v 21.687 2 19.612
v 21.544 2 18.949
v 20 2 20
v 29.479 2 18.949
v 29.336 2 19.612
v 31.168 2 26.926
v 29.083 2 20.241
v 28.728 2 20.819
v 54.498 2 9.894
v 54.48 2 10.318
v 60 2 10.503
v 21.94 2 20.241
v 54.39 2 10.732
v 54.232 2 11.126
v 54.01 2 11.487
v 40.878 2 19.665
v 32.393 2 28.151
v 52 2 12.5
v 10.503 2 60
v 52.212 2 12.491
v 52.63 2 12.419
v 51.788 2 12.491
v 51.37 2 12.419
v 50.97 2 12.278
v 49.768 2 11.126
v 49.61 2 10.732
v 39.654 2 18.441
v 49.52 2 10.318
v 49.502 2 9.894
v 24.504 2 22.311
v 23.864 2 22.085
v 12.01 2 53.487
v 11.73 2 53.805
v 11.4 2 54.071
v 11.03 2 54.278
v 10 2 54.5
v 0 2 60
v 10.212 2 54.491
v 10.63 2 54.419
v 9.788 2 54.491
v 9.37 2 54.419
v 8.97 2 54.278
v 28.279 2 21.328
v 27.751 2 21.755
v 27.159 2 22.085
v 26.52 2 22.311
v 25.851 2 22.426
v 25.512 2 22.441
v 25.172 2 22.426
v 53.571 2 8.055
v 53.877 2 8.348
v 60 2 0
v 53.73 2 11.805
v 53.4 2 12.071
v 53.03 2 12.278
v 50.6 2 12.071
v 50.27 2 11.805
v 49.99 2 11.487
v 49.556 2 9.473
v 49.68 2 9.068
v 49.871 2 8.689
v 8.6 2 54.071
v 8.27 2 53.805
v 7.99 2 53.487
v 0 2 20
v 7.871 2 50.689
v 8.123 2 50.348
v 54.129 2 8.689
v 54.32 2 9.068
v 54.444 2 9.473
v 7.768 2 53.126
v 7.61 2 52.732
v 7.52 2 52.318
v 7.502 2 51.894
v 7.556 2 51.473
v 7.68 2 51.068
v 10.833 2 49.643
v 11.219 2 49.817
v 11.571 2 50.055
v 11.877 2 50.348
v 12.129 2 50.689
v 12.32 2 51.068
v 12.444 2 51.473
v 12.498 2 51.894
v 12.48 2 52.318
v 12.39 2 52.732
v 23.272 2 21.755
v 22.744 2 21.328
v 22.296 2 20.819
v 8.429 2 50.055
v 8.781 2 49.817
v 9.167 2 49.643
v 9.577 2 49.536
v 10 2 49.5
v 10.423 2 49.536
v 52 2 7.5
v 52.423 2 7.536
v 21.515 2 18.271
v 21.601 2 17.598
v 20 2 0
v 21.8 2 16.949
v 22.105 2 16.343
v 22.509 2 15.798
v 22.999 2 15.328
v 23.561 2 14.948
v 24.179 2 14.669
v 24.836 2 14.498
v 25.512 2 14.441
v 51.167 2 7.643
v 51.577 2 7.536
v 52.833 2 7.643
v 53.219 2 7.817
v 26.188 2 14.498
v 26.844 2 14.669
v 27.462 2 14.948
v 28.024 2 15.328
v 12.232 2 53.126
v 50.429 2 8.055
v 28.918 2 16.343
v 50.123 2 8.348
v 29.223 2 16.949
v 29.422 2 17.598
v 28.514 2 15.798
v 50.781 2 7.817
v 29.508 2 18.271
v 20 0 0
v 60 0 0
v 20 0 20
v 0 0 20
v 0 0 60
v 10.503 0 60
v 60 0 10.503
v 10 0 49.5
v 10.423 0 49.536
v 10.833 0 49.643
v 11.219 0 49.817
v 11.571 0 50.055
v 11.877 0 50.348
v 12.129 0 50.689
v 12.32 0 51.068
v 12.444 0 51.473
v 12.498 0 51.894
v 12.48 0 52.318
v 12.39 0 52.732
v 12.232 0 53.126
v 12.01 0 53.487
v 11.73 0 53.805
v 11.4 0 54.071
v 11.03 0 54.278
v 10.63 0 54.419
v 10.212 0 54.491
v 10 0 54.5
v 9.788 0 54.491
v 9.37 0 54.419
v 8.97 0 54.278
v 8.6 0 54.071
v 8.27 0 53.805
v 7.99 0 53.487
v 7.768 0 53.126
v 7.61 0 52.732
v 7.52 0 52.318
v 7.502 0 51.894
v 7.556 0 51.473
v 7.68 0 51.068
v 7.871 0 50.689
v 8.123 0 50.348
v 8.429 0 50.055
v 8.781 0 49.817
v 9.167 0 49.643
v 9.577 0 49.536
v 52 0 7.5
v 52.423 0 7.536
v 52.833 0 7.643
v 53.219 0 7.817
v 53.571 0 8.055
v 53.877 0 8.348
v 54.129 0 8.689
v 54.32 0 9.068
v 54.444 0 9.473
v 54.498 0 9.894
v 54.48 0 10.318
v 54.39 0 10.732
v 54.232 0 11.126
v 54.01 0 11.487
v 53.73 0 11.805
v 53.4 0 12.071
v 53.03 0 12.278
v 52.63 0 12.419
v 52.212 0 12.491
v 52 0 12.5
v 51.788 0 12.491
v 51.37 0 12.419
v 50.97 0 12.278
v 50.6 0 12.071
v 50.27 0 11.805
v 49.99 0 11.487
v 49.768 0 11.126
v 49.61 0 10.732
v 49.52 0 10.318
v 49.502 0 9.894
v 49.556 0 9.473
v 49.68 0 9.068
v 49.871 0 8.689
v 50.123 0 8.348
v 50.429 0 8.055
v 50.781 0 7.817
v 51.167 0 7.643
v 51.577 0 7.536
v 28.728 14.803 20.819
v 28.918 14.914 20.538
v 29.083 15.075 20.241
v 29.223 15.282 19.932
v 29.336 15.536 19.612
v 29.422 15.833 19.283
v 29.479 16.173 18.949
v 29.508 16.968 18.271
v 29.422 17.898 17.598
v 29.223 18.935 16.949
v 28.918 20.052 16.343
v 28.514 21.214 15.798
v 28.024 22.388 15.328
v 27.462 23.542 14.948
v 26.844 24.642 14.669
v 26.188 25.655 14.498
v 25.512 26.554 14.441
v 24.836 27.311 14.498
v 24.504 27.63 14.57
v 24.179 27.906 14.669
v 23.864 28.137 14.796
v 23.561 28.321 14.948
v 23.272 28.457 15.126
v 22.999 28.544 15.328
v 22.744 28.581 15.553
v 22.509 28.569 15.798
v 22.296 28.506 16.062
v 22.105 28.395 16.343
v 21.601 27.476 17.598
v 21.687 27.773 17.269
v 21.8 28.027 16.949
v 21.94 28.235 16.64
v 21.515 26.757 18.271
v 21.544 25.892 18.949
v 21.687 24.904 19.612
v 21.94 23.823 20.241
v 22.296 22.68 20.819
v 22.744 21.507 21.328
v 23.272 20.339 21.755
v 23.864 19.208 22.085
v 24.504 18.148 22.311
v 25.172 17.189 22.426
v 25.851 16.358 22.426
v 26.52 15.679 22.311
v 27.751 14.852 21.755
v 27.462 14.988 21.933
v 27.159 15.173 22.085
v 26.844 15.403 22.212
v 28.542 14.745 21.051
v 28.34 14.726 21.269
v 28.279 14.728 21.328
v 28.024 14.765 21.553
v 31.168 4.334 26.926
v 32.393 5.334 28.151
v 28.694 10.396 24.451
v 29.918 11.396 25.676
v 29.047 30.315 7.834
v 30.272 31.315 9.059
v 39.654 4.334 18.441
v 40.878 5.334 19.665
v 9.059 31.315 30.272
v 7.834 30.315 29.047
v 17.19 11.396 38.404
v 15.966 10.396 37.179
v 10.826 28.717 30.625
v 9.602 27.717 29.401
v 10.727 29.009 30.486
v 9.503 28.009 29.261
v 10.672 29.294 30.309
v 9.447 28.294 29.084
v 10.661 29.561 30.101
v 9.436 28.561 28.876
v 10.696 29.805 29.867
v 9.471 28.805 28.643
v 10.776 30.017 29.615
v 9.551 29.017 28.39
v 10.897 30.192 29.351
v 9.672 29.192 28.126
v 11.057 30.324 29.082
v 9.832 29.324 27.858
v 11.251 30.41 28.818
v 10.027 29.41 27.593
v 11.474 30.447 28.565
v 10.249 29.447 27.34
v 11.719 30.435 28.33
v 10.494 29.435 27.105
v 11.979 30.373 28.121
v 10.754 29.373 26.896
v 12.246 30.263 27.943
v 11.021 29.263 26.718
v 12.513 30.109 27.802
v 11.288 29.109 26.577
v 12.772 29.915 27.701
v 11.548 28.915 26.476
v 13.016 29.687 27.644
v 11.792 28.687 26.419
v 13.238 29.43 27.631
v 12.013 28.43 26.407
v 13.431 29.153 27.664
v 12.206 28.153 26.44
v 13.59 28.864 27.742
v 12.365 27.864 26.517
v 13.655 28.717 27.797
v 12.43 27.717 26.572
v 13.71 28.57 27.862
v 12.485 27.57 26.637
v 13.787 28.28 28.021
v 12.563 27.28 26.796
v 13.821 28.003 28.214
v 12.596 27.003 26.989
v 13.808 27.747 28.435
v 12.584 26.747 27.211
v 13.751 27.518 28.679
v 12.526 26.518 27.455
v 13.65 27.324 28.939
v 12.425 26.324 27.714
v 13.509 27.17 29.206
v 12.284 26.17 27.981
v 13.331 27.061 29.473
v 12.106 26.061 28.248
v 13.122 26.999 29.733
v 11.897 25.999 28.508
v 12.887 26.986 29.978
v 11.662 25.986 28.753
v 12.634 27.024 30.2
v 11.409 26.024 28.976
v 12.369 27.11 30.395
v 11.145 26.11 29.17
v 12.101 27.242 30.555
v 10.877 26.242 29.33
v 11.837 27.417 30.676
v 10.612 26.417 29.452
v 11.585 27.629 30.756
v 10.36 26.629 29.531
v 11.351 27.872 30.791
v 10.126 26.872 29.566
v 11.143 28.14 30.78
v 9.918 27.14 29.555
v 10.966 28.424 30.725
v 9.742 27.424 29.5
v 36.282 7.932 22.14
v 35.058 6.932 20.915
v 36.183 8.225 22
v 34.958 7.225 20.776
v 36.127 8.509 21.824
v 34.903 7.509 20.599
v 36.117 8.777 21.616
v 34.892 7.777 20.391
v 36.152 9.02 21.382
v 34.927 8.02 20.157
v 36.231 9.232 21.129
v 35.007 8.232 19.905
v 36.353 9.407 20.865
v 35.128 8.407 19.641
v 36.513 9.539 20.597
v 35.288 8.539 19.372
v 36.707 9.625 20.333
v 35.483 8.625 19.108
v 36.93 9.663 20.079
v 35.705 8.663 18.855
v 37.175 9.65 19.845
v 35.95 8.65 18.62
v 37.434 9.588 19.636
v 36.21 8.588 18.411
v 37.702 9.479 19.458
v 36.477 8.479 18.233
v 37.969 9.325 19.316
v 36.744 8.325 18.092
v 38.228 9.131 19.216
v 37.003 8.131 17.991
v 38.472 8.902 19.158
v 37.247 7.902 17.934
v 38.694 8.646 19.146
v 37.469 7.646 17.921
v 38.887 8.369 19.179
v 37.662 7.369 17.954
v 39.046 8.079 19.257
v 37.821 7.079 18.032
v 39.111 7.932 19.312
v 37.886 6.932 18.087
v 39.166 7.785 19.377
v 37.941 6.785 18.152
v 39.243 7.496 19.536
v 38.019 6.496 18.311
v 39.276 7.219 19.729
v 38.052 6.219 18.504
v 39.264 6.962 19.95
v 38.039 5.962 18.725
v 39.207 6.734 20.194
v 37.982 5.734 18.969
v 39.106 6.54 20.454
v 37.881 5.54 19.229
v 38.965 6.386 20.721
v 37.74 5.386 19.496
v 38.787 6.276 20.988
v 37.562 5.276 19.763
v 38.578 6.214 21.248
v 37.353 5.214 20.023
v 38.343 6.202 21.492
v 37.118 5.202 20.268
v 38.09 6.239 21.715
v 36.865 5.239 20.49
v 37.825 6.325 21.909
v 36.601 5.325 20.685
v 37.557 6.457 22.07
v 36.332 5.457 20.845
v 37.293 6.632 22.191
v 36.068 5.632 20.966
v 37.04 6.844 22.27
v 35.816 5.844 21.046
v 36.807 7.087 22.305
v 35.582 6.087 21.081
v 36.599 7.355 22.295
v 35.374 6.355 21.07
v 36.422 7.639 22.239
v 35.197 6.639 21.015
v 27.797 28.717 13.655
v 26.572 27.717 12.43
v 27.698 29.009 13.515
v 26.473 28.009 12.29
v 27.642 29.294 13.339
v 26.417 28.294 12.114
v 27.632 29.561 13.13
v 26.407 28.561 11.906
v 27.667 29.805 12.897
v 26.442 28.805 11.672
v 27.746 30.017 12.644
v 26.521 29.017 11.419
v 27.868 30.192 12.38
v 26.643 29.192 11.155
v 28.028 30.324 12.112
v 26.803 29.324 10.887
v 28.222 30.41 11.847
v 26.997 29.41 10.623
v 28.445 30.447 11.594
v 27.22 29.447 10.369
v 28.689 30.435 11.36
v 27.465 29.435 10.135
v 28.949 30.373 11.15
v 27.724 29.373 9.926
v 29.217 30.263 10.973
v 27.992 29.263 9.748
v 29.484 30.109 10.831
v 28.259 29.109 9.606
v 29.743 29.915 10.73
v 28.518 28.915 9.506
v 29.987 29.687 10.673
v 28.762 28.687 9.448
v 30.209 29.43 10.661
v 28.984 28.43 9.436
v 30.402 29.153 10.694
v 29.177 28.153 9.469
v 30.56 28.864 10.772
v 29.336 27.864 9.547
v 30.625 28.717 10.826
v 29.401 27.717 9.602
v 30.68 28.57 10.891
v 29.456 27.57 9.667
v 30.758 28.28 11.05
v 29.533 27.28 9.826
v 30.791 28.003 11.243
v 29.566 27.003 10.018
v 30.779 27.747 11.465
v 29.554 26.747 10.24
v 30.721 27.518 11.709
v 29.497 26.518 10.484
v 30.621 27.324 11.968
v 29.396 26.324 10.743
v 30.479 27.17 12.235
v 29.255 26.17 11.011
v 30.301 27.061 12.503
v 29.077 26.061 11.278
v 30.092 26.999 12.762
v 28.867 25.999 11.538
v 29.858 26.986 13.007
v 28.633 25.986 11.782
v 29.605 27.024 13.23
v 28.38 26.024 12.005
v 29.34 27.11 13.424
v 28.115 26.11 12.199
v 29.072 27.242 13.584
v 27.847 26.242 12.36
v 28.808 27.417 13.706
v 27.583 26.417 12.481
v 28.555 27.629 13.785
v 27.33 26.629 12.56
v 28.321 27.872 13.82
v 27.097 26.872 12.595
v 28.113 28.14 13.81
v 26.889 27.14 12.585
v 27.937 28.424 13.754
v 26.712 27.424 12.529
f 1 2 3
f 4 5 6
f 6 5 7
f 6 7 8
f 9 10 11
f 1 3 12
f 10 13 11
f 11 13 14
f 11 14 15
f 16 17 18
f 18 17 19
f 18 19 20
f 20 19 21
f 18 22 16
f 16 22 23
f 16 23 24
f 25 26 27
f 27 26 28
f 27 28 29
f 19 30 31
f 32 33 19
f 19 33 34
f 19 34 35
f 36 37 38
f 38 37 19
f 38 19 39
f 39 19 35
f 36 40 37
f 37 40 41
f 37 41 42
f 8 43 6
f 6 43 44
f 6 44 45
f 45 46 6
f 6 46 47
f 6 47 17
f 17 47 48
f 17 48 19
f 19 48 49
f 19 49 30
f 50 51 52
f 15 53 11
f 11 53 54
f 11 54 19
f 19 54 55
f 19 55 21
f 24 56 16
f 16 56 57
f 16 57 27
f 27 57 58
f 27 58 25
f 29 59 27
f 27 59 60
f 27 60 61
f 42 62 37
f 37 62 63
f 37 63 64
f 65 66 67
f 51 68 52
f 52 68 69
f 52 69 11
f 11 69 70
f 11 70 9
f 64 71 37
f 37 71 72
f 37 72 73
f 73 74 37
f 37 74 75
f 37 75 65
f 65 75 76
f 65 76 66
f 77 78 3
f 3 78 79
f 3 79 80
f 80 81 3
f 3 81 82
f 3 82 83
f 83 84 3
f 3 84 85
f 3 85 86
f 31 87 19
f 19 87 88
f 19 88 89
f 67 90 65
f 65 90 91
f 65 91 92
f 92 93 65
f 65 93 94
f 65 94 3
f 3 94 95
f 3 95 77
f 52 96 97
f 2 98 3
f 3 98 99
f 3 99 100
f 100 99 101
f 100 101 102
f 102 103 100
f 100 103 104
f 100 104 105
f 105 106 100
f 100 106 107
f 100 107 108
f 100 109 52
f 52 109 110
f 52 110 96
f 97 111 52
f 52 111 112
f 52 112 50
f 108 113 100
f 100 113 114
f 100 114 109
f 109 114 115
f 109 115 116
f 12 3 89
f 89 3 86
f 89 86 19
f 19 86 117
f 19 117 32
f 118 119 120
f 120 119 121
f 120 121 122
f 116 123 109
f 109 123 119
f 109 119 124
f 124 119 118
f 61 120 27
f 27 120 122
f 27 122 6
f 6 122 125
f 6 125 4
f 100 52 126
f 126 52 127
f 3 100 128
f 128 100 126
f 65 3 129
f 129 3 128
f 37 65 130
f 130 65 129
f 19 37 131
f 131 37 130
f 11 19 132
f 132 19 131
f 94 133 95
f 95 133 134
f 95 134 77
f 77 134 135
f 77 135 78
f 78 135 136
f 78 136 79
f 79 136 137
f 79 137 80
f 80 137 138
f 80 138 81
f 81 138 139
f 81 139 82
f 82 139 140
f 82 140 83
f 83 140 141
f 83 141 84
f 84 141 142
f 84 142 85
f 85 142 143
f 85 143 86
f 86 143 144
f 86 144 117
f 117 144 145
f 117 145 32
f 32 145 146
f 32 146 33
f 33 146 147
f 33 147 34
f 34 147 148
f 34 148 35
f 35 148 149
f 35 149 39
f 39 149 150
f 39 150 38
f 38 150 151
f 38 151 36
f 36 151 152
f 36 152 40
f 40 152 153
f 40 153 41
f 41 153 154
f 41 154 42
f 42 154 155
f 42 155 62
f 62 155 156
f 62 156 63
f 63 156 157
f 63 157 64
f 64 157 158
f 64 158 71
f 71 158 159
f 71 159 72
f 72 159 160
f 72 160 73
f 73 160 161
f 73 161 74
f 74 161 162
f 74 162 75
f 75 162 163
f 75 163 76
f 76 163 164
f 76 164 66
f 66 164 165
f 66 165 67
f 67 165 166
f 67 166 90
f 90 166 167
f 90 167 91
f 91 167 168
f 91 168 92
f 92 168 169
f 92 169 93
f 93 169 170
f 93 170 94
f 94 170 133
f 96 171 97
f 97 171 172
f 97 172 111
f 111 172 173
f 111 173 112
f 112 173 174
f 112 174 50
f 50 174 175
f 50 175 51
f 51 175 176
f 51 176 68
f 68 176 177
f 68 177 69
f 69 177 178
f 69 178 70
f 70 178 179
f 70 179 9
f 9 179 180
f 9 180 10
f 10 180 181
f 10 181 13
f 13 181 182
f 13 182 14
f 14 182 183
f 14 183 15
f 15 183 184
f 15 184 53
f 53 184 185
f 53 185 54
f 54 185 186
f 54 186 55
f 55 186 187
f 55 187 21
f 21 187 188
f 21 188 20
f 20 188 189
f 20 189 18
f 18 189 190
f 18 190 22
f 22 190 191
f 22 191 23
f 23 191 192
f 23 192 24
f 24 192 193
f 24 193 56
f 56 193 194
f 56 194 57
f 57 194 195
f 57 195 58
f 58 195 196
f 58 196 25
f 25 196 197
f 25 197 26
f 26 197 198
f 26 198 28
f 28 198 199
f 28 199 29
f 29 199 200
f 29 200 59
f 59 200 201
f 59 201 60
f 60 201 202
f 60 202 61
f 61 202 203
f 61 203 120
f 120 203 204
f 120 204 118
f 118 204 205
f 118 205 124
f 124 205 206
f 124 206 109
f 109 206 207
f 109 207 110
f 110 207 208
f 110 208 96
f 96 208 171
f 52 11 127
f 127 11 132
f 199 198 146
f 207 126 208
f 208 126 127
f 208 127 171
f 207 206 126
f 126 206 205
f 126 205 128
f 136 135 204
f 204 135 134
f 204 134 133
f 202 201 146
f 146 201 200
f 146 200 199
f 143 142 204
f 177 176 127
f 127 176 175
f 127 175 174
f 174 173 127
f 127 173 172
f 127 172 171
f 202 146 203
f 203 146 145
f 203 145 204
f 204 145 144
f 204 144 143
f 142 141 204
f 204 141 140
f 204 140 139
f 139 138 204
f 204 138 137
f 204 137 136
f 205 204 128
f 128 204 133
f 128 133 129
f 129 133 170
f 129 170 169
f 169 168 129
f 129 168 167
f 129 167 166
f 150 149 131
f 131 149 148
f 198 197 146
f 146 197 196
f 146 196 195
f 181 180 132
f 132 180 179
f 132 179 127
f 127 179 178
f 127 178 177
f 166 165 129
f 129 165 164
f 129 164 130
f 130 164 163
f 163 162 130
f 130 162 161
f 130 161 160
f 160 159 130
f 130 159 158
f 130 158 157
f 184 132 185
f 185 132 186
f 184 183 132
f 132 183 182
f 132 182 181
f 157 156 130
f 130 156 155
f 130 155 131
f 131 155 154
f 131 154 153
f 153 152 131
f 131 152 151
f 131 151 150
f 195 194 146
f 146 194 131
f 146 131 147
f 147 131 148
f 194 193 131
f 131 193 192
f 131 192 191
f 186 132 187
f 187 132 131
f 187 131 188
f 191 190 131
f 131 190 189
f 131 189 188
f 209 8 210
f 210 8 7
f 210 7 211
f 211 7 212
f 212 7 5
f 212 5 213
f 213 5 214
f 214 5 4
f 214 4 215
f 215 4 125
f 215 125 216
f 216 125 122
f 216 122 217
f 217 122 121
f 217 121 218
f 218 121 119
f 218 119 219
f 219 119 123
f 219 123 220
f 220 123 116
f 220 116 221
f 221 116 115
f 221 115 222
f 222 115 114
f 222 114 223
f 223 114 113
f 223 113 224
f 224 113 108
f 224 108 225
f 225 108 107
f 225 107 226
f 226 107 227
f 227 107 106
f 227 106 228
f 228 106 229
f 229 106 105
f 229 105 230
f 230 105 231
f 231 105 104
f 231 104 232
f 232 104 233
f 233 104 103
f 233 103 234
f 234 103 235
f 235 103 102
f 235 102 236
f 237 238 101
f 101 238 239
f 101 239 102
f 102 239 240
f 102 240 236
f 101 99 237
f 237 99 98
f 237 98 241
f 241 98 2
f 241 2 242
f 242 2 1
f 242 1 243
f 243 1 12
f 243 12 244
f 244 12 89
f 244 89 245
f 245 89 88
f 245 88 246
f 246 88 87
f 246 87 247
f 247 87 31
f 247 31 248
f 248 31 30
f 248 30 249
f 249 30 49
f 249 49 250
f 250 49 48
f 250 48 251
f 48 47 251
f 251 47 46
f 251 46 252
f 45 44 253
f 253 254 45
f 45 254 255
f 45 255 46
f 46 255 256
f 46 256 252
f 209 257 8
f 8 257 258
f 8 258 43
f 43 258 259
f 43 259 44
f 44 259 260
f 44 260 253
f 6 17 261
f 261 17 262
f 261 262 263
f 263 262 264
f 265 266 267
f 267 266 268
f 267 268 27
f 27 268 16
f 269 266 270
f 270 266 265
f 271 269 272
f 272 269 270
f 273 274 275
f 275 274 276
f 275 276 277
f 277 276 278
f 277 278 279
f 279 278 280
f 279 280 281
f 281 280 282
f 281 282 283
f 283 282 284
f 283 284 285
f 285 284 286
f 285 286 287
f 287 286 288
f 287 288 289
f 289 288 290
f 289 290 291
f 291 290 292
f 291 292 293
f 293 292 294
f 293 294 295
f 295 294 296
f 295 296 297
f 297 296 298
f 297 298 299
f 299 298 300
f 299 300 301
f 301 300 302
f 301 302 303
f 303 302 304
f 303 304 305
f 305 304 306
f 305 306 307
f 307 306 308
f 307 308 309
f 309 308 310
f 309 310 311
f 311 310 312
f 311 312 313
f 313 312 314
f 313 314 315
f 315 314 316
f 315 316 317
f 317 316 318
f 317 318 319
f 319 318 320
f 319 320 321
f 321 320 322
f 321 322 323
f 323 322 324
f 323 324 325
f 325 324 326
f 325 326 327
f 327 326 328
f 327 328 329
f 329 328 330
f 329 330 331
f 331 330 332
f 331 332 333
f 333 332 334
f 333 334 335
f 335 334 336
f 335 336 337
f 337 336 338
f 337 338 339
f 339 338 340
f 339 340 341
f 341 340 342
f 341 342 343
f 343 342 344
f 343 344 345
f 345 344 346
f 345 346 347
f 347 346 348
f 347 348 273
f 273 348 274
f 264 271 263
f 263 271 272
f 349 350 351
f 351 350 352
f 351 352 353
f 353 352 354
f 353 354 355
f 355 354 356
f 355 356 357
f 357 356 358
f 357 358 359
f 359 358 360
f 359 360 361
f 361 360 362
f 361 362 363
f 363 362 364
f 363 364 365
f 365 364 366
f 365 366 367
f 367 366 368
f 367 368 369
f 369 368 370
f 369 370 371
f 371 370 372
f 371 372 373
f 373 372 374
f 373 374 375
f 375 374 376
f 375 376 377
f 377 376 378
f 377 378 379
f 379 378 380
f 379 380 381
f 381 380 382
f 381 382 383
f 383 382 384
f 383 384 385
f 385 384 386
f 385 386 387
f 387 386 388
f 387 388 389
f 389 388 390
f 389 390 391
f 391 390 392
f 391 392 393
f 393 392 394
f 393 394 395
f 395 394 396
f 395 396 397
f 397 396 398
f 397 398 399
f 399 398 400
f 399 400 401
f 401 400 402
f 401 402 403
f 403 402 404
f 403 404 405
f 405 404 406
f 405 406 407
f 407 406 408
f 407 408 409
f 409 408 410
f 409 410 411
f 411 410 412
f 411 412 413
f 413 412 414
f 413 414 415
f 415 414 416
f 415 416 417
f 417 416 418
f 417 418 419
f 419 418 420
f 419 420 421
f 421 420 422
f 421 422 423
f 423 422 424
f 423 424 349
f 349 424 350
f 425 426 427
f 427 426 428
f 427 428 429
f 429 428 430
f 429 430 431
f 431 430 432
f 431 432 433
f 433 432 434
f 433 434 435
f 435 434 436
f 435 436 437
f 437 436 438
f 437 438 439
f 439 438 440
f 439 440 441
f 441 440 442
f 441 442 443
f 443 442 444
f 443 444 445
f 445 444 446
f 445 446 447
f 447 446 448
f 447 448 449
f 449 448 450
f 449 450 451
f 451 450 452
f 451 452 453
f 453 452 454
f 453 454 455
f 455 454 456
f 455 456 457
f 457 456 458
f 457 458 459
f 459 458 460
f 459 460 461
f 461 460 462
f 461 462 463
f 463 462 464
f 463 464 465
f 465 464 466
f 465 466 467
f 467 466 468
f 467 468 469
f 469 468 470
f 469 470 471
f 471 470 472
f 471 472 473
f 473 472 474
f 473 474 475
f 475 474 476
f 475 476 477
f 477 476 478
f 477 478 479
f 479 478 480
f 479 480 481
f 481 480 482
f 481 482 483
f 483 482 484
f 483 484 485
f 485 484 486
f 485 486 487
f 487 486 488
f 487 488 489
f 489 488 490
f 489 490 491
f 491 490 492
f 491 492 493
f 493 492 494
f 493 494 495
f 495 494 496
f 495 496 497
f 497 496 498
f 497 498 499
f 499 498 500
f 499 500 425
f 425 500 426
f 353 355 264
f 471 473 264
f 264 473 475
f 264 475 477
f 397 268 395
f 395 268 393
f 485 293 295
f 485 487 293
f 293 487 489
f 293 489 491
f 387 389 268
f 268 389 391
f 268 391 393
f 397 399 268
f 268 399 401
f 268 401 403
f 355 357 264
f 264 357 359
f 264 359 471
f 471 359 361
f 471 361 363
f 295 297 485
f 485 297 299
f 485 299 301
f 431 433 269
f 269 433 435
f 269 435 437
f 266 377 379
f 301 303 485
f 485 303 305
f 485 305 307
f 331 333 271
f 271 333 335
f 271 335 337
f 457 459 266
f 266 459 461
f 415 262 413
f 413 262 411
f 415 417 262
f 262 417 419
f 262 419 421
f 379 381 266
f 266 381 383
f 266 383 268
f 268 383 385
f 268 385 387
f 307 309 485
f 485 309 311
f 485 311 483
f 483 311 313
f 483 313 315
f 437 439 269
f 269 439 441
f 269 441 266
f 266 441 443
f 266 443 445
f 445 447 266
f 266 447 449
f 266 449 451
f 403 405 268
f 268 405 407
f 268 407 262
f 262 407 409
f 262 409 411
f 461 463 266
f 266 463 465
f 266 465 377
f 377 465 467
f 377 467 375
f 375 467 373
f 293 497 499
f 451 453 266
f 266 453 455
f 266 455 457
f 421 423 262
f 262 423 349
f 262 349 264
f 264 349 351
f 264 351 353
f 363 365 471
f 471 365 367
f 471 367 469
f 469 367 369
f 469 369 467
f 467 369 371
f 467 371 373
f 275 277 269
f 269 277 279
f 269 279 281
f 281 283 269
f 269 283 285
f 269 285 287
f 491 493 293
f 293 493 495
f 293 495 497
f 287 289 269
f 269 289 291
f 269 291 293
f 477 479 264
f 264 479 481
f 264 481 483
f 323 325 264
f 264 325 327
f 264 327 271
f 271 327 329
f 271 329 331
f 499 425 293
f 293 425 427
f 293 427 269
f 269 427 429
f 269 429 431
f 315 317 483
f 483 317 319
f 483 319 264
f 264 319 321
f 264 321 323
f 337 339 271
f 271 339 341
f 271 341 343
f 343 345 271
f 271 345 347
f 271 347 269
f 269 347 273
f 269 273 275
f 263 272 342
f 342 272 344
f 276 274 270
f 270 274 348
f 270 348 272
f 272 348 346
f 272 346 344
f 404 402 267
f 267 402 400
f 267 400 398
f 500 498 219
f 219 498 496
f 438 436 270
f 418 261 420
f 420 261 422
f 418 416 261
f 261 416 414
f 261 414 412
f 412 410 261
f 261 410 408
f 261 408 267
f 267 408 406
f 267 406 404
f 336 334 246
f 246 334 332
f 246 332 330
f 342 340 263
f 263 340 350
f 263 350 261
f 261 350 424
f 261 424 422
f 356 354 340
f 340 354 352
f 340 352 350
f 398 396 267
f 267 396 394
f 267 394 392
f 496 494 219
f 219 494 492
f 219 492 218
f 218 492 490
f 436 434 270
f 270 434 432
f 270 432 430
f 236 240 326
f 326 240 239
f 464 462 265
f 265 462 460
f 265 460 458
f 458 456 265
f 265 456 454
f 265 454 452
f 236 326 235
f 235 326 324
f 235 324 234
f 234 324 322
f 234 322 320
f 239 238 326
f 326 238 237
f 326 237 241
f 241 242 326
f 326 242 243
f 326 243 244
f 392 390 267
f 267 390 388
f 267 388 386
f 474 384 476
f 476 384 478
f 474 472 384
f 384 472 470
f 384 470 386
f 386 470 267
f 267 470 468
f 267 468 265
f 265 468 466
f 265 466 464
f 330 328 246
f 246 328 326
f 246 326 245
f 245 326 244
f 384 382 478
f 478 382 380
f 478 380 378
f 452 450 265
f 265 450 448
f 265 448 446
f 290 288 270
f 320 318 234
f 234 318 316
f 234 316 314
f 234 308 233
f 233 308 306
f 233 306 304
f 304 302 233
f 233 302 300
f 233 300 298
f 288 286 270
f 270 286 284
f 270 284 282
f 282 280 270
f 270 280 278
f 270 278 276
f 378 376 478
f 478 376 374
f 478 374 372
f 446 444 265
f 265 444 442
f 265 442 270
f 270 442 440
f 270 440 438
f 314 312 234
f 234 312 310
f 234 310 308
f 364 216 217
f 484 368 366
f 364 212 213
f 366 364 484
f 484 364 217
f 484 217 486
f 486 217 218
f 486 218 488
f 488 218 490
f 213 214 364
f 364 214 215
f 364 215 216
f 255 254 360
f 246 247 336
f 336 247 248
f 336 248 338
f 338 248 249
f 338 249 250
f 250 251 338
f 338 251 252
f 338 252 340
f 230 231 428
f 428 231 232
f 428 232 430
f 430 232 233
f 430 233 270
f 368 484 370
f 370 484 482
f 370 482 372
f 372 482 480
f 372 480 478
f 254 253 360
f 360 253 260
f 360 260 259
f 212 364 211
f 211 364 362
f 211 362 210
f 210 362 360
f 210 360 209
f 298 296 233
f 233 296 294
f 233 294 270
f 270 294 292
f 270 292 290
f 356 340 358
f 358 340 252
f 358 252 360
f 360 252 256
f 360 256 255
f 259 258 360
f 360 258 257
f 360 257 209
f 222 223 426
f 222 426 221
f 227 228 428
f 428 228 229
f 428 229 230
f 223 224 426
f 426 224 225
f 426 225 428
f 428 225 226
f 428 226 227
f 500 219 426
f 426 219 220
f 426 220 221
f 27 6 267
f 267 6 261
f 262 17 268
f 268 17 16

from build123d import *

# Parameters (mm, degrees)
SKETCH_1_R      = 2.5
EXTRUDE_1_DEPTH = 2
SKETCH_2_R      = 2
EXTRUDE_3_DEPTH = 2
EXTRUDE_4_REACH = 91.774
SKETCH_4_R      = 4
EXTRUDE_5_REACH = 91.774


with BuildPart() as part:
    # 草图1 → 凸台-拉伸1 (new body)
    with BuildSketch(Plane(origin=(0, 0, 0), x_dir=(1, 0, 0), z_dir=(0, 1, 0))):
        Polygon((10.502525317, -60), (60, -10.502525317), (60, 0), (20, 0), (20, -20), (0, -20), (0, -60), align=None)
        with Locations(Location((10, -52, 0), (0, 0, 270))):
            Circle(SKETCH_1_R, mode=Mode.SUBTRACT)
        with Locations(Location((52, -10, 0), (0, 0, 270))):
            Circle(SKETCH_1_R, mode=Mode.SUBTRACT)
    extrude(amount=EXTRUDE_1_DEPTH)



with BuildPart() as body_2:
    # 草图2 → 凸台-拉伸3 (new body)
    with BuildSketch(Plane(origin=(23.112372436, 18.871173071, 23.112372436), x_dir=(-0.7071067811865475, 0, 0.7071067811865477), z_dir=(0.6123724356957955, 0.4999999999999981, 0.6123724356957954))):
        Polygon((-3, 16.786030205), (-15, 16.786030205), (-15, -13.213969795), (15, -13.213969795), (15, 9.786030205), (-3, 9.786030205), align=None)
        with Locations(Location((-12, -10.213969795, 0), (0, 0, 180))):
            Circle(SKETCH_2_R, mode=Mode.SUBTRACT)
        with Locations(Location((12, -10.213969795, 0), (0, 0, 180))):
            Circle(SKETCH_2_R, mode=Mode.SUBTRACT)
        with Locations(Location((-12, 13.786030205, 0), (0, 0, 180))):
            Circle(SKETCH_2_R, mode=Mode.SUBTRACT)
    extrude(amount=EXTRUDE_3_DEPTH)


with BuildPart() as part_1:
    add(part.part)

    add(body_2.part)  # 凸台-拉伸4 merges body 2
    # 凸台-拉伸4: up to this plane
    extrude_4_end = Plane(origin=(23.112372436, 18.871173071, 23.112372436), z_dir=(0.6123724356957954, 0.4999999999999981, 0.6123724356957952))
    # 草图4 → 凸台-拉伸4 (add, up to the surface)
    with BuildSketch(Plane(origin=(0, 2, 0), x_dir=(1, 0, 0), z_dir=(0, 1, 0)), mode=Mode.PRIVATE) as extrude_4_sk1:
        with Locations(Location((25.511596423, -18.440528611, 0), (0, 0, 315))):
            Circle(SKETCH_4_R)
    extrude_4_tool1 = split(extrude(extrude_4_sk1.sketch, amount=EXTRUDE_4_REACH, mode=Mode.PRIVATE), bisect_by=extrude_4_end, keep=Keep.BOTH, mode=Mode.PRIVATE)
    add(extrude_4_tool1.solids().sort_by_distance((25.511596, 2, 18.440529))[0])

    # 草图5 → 凸台-拉伸5 (add, up to next)
    with BuildSketch(Plane(origin=(0, 2, 0), x_dir=(1, 0, 0), z_dir=(0, 1, 0)), mode=Mode.PRIVATE) as extrude_5_sk1:
        Polygon((39.653732047, -18.440528611), (31.168450673, -26.925809986), (32.393195544, -28.150554857), (40.878476918, -19.665273483), align=None)
    extrude_5_tool1 = extrude(extrude_5_sk1.sketch, amount=EXTRUDE_5_REACH, mode=Mode.PRIVATE) - part_1.part
    add(extrude_5_tool1.solids().sort_by_distance((36.023464, 2, 23.295542))[0])


solid = part_1.part
